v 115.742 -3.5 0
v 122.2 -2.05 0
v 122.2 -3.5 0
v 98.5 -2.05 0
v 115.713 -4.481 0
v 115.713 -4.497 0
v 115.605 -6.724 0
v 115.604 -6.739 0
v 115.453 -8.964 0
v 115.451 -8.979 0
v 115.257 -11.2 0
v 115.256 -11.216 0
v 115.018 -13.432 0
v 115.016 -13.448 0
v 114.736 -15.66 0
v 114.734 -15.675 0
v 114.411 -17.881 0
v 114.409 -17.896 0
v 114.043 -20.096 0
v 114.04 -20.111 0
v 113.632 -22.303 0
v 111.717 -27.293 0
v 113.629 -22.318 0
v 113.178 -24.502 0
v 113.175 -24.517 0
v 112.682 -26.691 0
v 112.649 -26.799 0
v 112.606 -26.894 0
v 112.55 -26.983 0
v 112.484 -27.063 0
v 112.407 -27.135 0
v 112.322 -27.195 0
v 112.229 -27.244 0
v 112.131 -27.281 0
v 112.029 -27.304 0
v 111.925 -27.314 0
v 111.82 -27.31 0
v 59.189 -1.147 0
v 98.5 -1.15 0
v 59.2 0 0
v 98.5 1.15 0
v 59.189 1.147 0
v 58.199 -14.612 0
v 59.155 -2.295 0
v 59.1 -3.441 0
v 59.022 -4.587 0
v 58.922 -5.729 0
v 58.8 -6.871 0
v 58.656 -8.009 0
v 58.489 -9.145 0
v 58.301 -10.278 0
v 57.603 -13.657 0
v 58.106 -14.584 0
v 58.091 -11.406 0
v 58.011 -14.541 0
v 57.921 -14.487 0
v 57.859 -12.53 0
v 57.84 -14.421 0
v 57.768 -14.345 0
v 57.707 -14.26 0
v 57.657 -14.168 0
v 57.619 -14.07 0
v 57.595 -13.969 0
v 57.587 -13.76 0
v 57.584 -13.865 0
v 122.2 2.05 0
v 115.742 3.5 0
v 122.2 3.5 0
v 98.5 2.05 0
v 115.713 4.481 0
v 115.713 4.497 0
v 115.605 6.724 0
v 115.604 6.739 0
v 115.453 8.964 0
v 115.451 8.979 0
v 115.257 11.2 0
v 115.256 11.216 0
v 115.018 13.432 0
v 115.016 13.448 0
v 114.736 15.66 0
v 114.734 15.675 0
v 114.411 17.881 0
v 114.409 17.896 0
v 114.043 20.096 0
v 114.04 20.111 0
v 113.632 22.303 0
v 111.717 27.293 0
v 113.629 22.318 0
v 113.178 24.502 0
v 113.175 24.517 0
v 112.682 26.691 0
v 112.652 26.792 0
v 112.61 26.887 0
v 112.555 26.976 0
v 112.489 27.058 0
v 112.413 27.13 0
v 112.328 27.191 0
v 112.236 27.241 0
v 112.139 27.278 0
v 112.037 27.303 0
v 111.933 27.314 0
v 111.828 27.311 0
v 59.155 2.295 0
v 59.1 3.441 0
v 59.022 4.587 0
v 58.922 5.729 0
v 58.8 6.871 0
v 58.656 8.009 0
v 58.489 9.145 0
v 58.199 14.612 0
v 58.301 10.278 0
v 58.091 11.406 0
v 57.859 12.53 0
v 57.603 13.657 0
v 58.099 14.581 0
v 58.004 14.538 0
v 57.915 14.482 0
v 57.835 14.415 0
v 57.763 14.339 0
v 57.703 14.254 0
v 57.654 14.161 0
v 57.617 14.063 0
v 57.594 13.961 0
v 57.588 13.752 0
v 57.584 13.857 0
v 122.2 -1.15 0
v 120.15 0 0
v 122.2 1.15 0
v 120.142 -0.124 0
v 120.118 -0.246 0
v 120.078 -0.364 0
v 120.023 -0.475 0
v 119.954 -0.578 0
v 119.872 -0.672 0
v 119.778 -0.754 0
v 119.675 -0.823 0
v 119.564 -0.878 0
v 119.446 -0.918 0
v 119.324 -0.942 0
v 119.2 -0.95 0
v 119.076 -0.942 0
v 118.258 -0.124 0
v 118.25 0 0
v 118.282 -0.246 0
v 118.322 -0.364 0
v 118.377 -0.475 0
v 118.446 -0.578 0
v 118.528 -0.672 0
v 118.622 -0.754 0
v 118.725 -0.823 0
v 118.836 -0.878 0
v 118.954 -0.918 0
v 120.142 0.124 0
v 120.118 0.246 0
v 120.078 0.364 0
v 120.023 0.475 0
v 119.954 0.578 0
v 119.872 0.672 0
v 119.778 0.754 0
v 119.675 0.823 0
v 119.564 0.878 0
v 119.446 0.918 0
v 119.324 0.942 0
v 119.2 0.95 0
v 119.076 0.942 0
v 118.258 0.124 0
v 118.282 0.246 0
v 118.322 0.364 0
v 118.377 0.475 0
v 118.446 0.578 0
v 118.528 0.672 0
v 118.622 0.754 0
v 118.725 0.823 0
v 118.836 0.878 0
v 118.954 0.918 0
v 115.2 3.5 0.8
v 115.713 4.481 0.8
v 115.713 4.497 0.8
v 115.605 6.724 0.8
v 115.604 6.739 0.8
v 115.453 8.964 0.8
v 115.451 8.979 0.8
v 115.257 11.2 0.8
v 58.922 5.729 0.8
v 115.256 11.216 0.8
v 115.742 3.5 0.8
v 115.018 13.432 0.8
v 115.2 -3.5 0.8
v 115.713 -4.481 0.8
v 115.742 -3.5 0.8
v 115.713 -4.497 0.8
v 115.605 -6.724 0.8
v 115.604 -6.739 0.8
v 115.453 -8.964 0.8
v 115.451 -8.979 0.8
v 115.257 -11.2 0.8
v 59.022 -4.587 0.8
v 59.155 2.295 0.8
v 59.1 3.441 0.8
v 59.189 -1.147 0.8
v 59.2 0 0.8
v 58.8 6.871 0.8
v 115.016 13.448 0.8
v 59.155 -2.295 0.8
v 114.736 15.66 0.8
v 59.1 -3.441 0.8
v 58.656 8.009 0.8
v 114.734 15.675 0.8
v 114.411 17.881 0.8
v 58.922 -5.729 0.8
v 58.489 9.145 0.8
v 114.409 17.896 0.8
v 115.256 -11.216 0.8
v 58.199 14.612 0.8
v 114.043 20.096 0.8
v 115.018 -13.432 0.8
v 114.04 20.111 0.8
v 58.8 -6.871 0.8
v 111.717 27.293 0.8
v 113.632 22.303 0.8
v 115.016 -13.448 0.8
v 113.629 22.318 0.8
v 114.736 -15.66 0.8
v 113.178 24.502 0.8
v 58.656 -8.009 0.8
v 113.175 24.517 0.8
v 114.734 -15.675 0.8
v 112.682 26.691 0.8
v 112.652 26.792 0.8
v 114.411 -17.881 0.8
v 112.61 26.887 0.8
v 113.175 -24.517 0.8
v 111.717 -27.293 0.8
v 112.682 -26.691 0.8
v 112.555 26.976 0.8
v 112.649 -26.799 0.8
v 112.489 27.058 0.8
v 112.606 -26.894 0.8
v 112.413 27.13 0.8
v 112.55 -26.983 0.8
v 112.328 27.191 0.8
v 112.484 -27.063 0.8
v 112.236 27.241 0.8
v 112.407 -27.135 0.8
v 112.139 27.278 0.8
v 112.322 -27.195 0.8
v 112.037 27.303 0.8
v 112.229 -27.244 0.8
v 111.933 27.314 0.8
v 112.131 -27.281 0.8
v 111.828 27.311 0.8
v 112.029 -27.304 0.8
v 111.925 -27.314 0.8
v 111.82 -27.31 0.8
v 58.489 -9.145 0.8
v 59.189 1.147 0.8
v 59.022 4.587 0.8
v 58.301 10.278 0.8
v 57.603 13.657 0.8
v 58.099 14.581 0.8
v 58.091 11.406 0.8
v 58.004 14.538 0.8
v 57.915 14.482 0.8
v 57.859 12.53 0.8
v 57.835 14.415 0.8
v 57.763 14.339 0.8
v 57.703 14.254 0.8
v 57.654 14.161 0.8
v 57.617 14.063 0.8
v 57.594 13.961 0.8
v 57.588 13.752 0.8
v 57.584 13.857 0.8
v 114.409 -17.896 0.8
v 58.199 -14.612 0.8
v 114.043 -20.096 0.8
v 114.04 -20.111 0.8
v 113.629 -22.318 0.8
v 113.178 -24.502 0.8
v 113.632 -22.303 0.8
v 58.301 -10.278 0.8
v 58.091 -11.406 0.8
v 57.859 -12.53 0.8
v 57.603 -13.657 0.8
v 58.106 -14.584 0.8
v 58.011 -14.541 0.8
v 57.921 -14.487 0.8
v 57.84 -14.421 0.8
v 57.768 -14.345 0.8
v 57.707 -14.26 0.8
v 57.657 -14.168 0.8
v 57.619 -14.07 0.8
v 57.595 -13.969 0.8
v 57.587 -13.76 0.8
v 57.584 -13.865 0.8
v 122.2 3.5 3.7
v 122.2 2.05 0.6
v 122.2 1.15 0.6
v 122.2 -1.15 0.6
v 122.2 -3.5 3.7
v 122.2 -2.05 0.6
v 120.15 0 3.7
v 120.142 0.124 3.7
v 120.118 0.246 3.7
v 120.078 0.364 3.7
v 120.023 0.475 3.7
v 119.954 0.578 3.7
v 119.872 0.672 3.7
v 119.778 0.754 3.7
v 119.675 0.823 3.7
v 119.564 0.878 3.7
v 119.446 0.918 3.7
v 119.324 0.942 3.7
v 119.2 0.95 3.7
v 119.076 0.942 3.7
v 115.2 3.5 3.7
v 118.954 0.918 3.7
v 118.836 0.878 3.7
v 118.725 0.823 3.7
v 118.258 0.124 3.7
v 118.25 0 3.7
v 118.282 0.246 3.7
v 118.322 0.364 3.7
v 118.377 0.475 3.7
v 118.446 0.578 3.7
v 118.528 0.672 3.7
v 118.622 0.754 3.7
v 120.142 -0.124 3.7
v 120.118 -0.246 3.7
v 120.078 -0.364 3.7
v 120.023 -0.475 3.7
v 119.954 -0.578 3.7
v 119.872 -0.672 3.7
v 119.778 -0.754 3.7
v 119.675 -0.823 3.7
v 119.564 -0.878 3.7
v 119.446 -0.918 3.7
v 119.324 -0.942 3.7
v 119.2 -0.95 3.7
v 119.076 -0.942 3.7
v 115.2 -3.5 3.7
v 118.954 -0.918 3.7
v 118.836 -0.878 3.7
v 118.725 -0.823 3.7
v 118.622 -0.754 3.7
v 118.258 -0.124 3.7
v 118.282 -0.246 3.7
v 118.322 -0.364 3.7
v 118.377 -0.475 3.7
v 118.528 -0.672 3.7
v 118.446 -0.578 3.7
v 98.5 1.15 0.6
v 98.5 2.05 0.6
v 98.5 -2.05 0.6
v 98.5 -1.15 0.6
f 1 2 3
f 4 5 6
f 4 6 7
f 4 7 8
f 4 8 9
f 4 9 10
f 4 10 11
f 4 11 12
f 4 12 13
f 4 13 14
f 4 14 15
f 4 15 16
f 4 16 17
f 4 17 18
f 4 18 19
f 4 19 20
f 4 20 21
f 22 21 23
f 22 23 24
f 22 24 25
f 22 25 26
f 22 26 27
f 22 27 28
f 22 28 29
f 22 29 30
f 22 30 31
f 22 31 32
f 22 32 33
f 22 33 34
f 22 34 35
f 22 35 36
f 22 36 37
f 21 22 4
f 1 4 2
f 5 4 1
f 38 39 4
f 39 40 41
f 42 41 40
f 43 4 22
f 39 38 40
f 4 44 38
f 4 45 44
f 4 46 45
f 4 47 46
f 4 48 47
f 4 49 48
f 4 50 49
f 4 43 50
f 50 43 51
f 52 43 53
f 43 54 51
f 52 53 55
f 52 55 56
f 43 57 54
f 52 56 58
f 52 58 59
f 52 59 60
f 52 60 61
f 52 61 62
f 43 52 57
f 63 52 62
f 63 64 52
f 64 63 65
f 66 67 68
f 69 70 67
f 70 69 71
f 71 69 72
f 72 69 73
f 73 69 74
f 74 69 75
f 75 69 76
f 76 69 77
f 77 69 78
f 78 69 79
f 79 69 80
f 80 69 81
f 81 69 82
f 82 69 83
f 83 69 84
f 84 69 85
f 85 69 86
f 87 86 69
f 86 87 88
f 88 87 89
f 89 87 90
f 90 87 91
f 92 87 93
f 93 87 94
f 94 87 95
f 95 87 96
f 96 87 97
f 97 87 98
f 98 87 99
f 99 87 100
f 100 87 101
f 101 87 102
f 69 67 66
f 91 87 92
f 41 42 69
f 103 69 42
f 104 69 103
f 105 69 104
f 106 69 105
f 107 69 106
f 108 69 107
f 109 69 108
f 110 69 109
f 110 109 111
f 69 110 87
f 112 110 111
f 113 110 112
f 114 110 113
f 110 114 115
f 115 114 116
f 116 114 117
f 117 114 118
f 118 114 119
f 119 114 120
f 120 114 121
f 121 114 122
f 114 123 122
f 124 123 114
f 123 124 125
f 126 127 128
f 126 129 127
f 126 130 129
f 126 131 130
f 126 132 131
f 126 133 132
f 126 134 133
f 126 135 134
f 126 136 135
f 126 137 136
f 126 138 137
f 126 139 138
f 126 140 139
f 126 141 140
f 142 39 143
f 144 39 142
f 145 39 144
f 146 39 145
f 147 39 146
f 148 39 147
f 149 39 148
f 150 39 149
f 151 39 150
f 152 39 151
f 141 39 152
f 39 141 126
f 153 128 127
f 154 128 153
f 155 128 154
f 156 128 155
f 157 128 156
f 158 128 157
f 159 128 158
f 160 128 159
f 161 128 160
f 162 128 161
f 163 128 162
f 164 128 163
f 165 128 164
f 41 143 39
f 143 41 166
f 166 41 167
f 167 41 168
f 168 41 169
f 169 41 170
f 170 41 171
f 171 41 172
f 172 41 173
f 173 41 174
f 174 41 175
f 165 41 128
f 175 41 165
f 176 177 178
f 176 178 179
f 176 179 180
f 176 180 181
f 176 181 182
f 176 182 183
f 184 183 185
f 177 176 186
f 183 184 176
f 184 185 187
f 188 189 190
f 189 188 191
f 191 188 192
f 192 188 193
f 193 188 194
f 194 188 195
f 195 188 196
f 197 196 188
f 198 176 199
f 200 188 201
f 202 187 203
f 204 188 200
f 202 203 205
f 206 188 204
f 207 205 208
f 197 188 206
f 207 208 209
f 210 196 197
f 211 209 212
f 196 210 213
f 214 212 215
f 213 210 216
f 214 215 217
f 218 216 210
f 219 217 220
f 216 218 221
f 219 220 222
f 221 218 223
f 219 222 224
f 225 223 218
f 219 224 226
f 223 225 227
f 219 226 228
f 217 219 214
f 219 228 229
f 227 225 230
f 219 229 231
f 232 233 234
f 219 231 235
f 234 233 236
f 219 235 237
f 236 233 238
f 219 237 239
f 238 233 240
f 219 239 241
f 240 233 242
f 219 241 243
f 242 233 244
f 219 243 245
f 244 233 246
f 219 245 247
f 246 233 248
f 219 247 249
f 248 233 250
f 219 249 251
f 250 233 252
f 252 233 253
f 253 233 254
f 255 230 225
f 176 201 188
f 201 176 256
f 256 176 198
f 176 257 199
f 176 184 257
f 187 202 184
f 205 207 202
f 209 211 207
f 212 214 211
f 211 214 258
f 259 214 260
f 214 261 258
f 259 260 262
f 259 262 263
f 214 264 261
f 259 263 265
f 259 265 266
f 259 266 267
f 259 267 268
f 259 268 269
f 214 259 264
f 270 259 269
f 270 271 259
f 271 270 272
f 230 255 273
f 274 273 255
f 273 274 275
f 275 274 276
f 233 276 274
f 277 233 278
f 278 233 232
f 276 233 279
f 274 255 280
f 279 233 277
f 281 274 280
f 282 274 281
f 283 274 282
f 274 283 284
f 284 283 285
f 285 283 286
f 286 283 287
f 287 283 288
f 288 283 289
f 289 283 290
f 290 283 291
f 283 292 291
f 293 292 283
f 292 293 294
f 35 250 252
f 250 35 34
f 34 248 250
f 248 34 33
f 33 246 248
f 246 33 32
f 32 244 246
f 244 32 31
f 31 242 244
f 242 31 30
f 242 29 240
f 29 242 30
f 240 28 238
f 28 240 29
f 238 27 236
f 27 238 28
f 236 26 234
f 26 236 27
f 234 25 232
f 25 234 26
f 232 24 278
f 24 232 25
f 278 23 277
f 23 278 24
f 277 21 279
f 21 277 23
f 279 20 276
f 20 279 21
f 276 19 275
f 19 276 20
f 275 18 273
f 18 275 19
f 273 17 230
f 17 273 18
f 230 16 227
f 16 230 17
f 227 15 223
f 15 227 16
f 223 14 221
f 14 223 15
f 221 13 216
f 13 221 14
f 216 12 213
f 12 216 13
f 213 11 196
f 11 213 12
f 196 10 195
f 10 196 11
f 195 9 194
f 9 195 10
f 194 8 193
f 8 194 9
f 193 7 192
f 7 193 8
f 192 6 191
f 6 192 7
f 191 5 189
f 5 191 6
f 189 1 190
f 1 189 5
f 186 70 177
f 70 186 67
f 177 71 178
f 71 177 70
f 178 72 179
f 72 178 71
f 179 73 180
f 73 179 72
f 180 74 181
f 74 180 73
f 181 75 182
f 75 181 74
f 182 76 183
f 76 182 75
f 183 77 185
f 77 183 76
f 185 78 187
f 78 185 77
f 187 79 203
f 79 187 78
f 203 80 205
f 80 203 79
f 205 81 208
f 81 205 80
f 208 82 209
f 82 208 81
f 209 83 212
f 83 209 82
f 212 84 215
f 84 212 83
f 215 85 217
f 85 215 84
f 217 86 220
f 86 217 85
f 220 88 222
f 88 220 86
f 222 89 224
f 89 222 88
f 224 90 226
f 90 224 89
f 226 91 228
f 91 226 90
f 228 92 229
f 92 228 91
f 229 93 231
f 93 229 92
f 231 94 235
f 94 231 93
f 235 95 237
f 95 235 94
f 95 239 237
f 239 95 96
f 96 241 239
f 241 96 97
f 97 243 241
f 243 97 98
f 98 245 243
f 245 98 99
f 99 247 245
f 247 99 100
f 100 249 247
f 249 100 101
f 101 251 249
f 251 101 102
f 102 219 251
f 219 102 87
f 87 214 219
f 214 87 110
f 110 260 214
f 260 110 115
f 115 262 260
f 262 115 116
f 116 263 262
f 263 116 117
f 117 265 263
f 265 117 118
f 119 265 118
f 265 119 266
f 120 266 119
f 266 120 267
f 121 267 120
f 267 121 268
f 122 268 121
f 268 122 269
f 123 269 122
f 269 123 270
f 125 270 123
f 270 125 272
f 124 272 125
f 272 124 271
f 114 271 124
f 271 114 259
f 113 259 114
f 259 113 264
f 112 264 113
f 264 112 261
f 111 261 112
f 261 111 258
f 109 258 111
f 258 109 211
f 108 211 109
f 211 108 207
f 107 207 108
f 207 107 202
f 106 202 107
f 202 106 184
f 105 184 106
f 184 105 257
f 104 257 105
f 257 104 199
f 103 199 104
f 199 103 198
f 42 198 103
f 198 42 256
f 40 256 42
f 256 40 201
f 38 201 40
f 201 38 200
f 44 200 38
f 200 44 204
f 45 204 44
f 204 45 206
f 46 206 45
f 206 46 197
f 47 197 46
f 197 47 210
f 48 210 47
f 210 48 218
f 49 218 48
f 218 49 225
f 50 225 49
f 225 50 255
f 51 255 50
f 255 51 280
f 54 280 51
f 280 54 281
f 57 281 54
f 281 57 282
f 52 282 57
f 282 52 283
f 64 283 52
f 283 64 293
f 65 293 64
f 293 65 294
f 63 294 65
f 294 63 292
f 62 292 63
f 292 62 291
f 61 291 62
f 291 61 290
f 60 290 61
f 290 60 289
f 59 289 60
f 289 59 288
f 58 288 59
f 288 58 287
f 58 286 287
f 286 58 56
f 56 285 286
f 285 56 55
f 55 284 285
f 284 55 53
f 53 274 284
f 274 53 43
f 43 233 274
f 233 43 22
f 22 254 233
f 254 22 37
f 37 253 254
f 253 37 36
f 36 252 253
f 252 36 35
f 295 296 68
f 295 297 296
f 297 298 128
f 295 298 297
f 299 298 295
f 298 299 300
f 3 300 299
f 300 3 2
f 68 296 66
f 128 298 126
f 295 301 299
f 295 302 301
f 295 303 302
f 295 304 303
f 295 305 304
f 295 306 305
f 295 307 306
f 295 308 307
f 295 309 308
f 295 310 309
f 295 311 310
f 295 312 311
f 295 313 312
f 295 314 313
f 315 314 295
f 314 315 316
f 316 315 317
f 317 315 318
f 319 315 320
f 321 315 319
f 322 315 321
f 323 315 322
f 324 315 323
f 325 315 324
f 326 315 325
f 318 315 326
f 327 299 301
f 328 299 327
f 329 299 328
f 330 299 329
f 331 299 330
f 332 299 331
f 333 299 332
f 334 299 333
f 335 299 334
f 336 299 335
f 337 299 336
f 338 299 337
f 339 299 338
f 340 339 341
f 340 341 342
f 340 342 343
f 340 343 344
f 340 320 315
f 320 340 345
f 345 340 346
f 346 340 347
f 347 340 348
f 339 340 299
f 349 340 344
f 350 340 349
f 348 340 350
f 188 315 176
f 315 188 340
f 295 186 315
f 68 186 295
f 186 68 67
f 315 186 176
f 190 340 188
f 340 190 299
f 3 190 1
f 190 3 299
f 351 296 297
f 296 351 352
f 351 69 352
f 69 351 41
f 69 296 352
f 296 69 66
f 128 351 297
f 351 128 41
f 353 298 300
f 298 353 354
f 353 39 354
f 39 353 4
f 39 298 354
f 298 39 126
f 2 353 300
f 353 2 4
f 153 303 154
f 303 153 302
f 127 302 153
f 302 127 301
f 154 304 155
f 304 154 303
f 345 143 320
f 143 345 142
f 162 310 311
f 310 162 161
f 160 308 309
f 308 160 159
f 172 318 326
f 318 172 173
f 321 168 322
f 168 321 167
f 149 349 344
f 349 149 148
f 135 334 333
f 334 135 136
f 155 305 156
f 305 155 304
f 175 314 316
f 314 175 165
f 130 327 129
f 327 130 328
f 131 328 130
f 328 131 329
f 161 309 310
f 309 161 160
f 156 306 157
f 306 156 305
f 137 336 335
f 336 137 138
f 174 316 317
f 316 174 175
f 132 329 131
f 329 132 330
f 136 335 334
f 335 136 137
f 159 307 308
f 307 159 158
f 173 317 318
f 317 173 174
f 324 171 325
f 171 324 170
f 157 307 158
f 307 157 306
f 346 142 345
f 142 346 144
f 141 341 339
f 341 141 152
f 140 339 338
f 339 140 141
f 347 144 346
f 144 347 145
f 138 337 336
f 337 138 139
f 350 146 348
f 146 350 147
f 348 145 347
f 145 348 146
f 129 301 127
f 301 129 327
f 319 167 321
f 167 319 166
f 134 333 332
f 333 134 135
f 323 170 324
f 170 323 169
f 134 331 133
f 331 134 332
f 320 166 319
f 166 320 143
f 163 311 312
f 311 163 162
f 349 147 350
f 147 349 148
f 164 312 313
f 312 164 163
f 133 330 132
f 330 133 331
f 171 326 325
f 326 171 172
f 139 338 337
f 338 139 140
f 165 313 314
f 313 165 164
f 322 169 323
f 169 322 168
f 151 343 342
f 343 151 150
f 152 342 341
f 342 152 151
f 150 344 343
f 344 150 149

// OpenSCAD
// Gen-DC — bobbin LID (top flange + locating tab). Print x12, flange face DOWN on the bed.
// CA-glue onto the hub top BEFORE winding. Tab = lap joint into the stator tab pocket; 1.75 mm filament
// pin through pin hole + stator ledge, trim flush. Lead slots carry both leads flush.
include <parameters.scad>;
$fn = 48;
module sector_2d(r_in, r_out, ang) {
    polygon([
        for (a = [-ang/2 : ang/24 : ang/2]) [r_in*cos(a), r_in*sin(a)],
        for (a = [ang/2 : -ang/24 : -ang/2]) [r_out*cos(a), r_out*sin(a)]
    ]);
}
module footprint_2d() { offset(r=wall) sector_2d(coil_id_r, coil_od_r, span_deg); }
module hub_2d()       { offset(delta=-coil_core_inset) sector_2d(coil_id_r, coil_od_r, span_deg); }

difference() {
    union() {
        linear_extrude(flange_t) footprint_2d();
        translate([coil_od_r + 0.2, -tab_w/2, 0]) cube([tab_len, tab_w, tab_h]);
    }
    translate([coil_mount_r, 0, -0.1]) cylinder(d=pin_d, h=tab_h + 1);
    for (y = [lead_y, -lead_y])
        translate([coil_od_r - coil_core_inset - 0.5, y - lead_slot_w/2, -0.1])
            cube([coil_core_inset + tab_len + 2, lead_slot_w, lead_groove_d + 0.1]);
}
